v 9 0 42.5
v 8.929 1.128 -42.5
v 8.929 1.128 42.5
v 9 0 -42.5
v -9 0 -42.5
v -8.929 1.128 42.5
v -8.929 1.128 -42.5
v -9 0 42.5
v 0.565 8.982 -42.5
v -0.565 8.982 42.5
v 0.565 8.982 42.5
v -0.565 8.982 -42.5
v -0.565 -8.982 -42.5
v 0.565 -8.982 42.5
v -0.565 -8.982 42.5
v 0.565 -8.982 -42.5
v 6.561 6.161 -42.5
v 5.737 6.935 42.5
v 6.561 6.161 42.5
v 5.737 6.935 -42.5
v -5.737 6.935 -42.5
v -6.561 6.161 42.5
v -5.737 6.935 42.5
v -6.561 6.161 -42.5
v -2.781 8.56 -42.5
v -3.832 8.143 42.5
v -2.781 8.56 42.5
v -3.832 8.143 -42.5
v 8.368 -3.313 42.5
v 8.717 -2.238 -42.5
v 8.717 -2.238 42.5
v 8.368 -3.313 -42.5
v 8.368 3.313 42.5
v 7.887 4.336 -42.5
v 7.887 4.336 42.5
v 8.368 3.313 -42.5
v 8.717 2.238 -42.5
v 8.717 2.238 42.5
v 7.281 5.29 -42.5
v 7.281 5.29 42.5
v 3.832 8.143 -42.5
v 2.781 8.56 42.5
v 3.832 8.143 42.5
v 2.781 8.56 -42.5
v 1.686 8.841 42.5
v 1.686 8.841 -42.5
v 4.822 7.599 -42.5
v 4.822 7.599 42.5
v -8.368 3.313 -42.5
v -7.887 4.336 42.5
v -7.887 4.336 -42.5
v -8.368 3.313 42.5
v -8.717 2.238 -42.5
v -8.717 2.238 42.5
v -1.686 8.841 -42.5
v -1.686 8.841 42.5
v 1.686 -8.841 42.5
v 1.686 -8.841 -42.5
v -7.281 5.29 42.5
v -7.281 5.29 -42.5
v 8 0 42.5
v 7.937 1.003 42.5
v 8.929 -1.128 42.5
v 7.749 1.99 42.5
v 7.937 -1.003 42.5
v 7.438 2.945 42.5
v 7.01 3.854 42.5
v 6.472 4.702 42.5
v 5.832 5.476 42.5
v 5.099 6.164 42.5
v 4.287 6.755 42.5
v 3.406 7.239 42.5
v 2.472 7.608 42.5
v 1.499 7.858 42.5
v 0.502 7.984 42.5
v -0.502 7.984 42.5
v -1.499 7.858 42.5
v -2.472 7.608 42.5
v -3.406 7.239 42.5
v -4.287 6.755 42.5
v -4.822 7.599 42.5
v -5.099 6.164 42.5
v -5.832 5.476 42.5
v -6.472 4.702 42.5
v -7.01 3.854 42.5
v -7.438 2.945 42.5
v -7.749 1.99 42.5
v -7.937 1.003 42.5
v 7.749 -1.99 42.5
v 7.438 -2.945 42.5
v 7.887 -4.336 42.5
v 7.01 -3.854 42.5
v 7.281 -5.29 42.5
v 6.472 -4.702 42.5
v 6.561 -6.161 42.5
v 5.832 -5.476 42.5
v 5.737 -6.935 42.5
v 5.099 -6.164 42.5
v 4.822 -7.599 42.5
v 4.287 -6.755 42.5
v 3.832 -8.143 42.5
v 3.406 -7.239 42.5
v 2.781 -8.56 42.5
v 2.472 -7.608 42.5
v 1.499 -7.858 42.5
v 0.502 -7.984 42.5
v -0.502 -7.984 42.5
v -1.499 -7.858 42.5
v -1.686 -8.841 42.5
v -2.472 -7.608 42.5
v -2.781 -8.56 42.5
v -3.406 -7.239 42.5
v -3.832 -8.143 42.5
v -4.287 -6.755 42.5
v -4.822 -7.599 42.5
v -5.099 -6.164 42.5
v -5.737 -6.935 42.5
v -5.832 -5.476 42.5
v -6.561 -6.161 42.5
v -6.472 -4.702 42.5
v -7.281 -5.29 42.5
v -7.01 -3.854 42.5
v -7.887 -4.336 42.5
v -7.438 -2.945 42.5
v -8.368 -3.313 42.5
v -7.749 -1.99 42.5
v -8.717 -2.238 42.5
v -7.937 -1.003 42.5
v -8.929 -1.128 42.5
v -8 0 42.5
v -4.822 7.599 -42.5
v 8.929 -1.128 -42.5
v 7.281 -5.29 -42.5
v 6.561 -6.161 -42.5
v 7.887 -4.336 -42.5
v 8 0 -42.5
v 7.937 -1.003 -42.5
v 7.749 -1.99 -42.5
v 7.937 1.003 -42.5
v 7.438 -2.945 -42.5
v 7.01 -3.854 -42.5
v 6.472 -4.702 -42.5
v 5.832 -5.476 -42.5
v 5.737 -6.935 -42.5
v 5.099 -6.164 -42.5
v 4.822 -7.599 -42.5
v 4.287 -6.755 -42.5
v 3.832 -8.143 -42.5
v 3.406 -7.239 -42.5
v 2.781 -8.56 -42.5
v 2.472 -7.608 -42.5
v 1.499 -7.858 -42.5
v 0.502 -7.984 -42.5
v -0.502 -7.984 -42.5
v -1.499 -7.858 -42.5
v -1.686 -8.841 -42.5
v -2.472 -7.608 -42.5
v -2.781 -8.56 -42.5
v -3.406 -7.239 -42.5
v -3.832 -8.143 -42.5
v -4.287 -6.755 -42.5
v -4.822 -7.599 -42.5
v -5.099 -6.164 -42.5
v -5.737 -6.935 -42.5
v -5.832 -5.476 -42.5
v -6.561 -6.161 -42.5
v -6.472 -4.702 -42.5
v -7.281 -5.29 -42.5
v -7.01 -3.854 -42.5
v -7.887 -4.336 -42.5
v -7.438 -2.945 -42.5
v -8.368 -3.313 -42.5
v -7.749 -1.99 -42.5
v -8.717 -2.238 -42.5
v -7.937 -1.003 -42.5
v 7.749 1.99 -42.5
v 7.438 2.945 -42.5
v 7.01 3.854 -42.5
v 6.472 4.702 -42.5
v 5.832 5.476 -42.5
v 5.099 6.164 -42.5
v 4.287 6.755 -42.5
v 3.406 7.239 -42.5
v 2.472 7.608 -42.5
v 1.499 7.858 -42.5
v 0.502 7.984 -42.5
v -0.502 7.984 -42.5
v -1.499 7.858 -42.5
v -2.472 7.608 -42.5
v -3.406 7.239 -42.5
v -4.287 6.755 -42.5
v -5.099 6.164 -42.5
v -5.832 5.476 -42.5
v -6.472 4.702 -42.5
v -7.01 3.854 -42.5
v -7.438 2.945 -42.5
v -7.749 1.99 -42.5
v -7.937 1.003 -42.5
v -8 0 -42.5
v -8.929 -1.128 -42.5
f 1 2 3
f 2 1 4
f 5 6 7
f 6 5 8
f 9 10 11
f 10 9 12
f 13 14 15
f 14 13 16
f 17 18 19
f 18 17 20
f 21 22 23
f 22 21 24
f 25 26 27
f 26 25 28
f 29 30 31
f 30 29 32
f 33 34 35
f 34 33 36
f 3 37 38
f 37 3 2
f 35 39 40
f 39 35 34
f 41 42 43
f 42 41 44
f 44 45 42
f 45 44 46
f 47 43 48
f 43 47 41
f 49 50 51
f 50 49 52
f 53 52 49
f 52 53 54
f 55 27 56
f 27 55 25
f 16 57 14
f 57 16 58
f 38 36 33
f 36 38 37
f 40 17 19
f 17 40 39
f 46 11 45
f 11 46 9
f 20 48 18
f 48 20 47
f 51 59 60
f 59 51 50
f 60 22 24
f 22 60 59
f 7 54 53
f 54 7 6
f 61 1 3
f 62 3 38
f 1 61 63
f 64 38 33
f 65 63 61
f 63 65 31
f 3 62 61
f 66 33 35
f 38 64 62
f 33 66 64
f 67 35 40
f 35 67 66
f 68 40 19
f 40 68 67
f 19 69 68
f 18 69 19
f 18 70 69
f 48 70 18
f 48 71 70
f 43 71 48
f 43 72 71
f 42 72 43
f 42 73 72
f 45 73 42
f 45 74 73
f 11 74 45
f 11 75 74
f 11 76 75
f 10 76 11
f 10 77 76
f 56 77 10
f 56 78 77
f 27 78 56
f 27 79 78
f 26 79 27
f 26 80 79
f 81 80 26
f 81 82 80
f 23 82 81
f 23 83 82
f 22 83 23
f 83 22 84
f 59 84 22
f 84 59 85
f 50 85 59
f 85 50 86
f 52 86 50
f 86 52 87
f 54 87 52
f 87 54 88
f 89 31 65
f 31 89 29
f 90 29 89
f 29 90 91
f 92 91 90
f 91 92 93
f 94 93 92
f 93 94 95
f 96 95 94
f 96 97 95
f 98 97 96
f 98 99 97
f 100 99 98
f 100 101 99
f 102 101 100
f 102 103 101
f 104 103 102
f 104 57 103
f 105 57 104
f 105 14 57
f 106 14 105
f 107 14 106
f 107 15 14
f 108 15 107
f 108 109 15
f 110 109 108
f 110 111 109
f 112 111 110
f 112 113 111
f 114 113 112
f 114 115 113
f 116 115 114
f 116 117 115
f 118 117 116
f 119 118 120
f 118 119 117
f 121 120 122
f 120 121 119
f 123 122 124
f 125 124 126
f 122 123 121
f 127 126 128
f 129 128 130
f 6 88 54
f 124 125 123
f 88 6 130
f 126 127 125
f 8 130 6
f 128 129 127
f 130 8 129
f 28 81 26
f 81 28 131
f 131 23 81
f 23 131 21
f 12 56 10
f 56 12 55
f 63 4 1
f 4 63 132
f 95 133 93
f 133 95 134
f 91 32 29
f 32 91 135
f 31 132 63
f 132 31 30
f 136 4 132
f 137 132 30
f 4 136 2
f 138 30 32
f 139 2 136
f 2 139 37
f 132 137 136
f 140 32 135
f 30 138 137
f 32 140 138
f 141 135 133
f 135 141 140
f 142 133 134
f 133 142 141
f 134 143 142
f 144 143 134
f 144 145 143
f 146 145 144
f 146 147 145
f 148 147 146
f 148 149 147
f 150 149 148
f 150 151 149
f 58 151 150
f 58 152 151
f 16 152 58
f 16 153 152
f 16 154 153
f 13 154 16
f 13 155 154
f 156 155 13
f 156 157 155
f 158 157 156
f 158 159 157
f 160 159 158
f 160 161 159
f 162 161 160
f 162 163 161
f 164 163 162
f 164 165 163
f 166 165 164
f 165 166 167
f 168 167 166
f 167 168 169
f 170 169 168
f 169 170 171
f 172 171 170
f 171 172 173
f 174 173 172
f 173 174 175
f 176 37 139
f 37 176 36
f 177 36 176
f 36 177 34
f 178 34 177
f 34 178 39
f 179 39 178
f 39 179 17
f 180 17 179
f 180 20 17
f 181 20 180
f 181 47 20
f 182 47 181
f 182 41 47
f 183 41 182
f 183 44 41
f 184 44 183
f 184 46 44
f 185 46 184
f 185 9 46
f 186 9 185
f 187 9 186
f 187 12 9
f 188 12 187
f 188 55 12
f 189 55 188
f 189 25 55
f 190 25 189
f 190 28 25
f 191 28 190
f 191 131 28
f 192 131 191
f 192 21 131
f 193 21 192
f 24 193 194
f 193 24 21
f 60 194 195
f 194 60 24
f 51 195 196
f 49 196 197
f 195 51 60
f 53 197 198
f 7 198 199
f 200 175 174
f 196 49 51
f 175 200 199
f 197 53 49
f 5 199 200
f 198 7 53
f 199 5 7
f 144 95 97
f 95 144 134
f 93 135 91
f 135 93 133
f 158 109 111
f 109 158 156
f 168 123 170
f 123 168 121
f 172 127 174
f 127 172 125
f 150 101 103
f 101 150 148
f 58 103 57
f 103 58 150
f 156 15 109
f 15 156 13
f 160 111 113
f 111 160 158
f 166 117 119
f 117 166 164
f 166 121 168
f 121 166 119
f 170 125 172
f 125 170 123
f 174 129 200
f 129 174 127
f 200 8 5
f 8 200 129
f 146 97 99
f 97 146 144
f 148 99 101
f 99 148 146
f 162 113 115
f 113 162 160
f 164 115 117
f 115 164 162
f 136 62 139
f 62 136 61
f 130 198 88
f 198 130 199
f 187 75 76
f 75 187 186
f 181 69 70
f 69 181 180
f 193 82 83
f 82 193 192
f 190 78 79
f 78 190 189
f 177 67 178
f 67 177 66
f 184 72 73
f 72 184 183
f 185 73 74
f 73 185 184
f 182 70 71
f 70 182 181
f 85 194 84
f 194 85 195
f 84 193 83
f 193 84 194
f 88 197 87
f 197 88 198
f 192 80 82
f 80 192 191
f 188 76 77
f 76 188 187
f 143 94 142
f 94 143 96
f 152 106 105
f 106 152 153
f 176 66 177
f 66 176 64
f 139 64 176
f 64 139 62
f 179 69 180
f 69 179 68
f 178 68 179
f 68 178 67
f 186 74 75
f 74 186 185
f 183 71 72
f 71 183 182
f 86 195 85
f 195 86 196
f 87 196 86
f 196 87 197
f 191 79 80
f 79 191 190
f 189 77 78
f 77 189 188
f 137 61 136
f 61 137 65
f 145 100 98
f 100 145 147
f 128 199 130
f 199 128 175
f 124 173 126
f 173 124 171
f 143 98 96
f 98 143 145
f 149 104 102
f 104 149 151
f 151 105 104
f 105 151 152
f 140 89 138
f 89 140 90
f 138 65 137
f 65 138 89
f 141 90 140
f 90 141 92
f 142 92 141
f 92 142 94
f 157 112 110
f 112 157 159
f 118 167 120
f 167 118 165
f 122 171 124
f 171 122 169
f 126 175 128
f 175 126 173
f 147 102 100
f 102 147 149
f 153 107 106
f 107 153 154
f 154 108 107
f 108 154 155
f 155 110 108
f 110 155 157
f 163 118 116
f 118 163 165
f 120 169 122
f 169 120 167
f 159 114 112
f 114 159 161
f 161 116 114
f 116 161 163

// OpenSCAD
$fn = 50;


difference() {
	union() {
		translate(v = [0, 0, -42.5000000000]) {
			cylinder(h = 85, r = 9.0000000000);
		}
	}
	union() {
		translate(v = [0, 0, -100.0000000000]) {
			cylinder(h = 200, r = 8);
		}
	}
}
